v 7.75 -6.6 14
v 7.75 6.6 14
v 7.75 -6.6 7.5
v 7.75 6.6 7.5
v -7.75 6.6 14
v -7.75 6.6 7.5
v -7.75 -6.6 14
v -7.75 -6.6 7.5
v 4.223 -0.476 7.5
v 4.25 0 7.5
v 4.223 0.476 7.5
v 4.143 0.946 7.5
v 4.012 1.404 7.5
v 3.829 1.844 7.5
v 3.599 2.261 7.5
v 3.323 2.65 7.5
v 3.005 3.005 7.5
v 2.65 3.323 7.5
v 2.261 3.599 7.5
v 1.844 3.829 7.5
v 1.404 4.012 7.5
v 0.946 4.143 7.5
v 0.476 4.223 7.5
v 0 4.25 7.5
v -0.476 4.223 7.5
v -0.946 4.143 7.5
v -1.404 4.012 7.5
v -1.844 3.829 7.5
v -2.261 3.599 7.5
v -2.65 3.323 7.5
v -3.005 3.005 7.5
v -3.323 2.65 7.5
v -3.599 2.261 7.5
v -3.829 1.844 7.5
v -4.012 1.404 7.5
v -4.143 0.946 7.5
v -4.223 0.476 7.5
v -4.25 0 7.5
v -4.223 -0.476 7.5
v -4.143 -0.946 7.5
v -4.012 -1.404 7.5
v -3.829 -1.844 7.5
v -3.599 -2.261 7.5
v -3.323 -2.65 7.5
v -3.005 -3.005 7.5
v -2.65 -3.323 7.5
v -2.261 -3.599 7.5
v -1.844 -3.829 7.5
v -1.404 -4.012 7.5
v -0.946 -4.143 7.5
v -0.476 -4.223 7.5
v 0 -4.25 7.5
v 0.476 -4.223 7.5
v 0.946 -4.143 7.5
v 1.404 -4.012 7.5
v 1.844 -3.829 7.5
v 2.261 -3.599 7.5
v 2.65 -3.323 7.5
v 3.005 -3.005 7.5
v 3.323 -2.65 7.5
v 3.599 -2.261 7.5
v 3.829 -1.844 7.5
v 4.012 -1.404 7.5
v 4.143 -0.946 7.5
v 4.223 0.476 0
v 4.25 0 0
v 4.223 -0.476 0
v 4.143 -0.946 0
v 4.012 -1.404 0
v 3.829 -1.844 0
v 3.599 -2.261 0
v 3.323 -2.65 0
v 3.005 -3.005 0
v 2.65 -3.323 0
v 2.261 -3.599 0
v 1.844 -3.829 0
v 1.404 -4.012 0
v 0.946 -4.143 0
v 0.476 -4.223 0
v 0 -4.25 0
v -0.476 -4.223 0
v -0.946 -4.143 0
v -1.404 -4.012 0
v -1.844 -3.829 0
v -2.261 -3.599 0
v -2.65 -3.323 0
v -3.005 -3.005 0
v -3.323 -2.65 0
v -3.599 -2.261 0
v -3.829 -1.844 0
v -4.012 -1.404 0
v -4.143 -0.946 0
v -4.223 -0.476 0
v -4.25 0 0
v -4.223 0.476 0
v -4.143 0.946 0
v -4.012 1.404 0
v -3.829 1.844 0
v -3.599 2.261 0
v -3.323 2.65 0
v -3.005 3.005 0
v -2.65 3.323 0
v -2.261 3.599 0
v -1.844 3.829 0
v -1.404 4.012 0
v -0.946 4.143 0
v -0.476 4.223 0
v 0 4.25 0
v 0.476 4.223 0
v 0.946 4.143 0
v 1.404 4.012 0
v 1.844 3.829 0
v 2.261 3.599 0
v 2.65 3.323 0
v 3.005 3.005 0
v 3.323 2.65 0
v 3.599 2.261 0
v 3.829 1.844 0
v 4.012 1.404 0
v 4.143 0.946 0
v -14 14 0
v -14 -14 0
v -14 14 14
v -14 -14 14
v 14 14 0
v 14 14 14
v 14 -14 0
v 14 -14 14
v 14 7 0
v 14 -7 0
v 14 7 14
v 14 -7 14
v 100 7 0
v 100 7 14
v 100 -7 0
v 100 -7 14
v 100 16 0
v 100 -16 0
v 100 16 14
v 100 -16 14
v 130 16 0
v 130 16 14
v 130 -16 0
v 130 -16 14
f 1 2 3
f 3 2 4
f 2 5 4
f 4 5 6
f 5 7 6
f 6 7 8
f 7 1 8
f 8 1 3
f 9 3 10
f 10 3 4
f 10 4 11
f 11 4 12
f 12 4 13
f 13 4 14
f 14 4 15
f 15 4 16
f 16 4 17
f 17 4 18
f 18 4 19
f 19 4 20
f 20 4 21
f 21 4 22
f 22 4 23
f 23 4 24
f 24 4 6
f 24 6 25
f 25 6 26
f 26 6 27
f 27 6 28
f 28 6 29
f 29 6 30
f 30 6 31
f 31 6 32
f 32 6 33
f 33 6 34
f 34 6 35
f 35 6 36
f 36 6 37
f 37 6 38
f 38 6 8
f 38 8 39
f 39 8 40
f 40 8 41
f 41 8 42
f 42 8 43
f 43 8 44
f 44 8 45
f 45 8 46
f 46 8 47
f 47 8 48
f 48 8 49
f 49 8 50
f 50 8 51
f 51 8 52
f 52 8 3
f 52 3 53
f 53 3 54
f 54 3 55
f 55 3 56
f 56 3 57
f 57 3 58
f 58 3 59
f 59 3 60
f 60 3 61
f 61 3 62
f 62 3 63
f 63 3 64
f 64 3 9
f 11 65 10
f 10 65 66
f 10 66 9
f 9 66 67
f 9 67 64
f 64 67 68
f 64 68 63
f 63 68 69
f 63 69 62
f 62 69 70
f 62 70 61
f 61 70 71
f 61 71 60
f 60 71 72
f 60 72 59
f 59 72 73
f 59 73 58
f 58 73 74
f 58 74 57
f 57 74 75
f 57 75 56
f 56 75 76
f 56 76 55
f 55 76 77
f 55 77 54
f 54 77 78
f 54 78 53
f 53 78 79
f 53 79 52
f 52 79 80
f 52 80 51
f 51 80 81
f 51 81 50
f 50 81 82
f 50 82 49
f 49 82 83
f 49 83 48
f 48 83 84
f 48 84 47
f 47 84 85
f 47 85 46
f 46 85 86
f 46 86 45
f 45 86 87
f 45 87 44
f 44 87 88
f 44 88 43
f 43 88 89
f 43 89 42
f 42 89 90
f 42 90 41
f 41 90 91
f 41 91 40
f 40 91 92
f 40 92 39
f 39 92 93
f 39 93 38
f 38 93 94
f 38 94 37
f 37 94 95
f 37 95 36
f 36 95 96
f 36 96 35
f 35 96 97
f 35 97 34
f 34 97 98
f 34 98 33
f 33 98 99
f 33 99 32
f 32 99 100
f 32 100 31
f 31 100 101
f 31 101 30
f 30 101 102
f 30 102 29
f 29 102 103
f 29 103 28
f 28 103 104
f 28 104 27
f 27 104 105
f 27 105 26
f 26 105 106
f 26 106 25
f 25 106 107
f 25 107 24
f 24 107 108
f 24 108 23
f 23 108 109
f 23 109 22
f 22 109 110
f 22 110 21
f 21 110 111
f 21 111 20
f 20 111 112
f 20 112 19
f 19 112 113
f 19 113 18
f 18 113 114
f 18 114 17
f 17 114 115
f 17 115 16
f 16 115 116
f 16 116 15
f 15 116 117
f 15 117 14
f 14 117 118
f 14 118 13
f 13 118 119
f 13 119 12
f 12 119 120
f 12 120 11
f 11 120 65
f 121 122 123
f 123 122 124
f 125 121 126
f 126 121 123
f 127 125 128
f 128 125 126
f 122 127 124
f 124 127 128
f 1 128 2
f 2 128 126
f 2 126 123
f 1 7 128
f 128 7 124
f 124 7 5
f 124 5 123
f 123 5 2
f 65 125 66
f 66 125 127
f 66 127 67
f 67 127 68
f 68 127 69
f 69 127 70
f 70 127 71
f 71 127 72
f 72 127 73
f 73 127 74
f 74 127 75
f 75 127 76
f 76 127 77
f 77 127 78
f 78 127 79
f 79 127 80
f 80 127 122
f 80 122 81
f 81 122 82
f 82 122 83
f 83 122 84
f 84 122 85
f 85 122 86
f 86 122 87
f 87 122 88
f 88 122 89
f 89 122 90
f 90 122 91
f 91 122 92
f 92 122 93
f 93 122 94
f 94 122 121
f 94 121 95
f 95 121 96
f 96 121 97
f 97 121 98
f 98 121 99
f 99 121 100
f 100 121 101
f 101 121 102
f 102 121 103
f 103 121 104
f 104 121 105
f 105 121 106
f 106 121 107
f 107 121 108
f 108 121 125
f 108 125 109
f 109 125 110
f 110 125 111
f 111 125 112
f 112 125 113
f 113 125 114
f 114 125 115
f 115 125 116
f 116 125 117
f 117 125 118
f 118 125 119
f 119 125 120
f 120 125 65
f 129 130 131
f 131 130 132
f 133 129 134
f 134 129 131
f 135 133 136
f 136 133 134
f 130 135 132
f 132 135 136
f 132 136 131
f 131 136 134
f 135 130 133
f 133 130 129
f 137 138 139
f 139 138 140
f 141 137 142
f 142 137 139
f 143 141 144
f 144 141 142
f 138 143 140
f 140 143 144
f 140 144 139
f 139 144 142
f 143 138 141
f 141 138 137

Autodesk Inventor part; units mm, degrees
ref_plane "YZ Plane" through (0, 0, 0) normal (1, 0, 0) x (0, 1, 0)
sketch "Skizze1" plane through (0, 0, 0) normal (0, 0, 1) x (1, 0, 0)
  line L0 (-14, -14) -> (14, -14)
  line L1 (14, -14) -> (14, 14)
  line L2 (14, 14) -> (-14, 14)
  line L3 (-14, 14) -> (-14, -14)
extrude "Extrusion1" add sketch "Skizze1" along normal blind 14
sketch "Skizze2" plane through (0, 0, 0) normal (0, 0, 1) x (1, 0, 0)
  line L0 (14, -7) -> (100, -7)
  line L1 (100, -7) -> (100, 7)
  line L2 (100, 7) -> (14, 7)
  line L3 (14, 7) -> (14, -7)
extrude "Extrusion2" add sketch "Skizze2" along normal blind 14 separate body
sketch "Skizze3" plane through (0, 0, 0) normal (0, 0, 1) x (1, 0, 0)
  line L0 (100, -16) -> (130, -16)
  line L1 (130, -16) -> (130, 16)
  line L2 (130, 16) -> (100, 16)
  line L3 (100, 16) -> (100, -16)
extrude "Extrusion3" add sketch "Skizze3" along normal blind 14 separate body
sketch "Skizze4" plane through (0, 0, 0) normal (0, 0, 1) x (1, 0, 0)
  circle A0 centre (0, 0) radius 4.25
extrude "Extrusion4" cut sketch "Skizze4" along normal blind 15 bodies 1
ref_plane "Arbeitsebene1" through (0, 0, 14) normal (0, 0, 1) x (1, 0, 0)
sketch "Skizze5" plane through (0, 0, 14) normal (0, 0, 1) x (1, 0, 0)
  line L0 (-7.75, -6.6) -> (7.75, -6.6)
  line L1 (7.75, -6.6) -> (7.75, 6.6)
  line L2 (7.75, 6.6) -> (-7.75, 6.6)
  line L3 (-7.75, 6.6) -> (-7.75, -6.6)
extrude "Extrusion5" cut sketch "Skizze5" against normal blind 6.5 bodies 1
sketch "Skizze6" plane through (0, 0, 0) normal (0, 0, 1) x (1, 0, 0)
  line L0 (110.25, -7.75) -> (119.75, -7.75)
  line L1 (119.75, -7.75) -> (119.75, 7.75)
  line L2 (119.75, 7.75) -> (110.25, 7.75)
  line L3 (110.25, 7.75) -> (110.25, -7.75)
extrude "Extrusion6" cut sketch "Skizze6" along normal blind 3 bodies 1
sketch "Skizze7" plane through (0, 0, 0) normal (0, 0, 1) x (1, 0, 0)
  circle A0 centre (115, 0) radius 3
extrude "Extrusion7" cut sketch "Skizze7" along normal blind 15 bodies 1
sketch "Skizze8" plane through (0, 0, 0) normal (0, 0, 1) x (1, 0, 0)
  circle A0 centre (105, 0) radius 1.1
  circle A1 centre (125, 0) radius 1.1
extrude "Extrusion8" cut sketch "Skizze8" along normal blind 15 bodies 1
ref_plane "Arbeitsebene2" through (0, 16, 0) normal (0, 1, 0) x (-1, 0, 0)
sketch "Skizze9" plane through (0, 16, 0) normal (0, 1, 0) x (-1, 0, 0)
  line L0 (107.25, 2.25) -> (122.75, 2.25)
  line L1 (122.75, 2.25) -> (122.75, 11.75)
  line L2 (122.75, 11.75) -> (107.25, 11.75)
  line L3 (107.25, 11.75) -> (107.25, 2.25)
extrude "Extrusion9" cut sketch "Skizze9" against normal blind 3 bodies 1
sketch "Skizze10" plane through (0, 16, 0) normal (0, 1, 0) x (-1, 0, 0)
  circle A0 centre (115, 7) radius 3
extrude "Extrusion10" cut sketch "Skizze10" along normal mid plane 33 bodies 1
sketch "Skizze11" plane through (0, 16, 0) normal (0, 1, 0) x (-1, 0, 0)
  circle A0 centre (105, 7) radius 1.1
  circle A1 centre (125, 7) radius 1.1
extrude "Extrusion11" cut sketch "Skizze11" along normal mid plane 33 bodies 1
properties part number "Sensorarm_v2"
